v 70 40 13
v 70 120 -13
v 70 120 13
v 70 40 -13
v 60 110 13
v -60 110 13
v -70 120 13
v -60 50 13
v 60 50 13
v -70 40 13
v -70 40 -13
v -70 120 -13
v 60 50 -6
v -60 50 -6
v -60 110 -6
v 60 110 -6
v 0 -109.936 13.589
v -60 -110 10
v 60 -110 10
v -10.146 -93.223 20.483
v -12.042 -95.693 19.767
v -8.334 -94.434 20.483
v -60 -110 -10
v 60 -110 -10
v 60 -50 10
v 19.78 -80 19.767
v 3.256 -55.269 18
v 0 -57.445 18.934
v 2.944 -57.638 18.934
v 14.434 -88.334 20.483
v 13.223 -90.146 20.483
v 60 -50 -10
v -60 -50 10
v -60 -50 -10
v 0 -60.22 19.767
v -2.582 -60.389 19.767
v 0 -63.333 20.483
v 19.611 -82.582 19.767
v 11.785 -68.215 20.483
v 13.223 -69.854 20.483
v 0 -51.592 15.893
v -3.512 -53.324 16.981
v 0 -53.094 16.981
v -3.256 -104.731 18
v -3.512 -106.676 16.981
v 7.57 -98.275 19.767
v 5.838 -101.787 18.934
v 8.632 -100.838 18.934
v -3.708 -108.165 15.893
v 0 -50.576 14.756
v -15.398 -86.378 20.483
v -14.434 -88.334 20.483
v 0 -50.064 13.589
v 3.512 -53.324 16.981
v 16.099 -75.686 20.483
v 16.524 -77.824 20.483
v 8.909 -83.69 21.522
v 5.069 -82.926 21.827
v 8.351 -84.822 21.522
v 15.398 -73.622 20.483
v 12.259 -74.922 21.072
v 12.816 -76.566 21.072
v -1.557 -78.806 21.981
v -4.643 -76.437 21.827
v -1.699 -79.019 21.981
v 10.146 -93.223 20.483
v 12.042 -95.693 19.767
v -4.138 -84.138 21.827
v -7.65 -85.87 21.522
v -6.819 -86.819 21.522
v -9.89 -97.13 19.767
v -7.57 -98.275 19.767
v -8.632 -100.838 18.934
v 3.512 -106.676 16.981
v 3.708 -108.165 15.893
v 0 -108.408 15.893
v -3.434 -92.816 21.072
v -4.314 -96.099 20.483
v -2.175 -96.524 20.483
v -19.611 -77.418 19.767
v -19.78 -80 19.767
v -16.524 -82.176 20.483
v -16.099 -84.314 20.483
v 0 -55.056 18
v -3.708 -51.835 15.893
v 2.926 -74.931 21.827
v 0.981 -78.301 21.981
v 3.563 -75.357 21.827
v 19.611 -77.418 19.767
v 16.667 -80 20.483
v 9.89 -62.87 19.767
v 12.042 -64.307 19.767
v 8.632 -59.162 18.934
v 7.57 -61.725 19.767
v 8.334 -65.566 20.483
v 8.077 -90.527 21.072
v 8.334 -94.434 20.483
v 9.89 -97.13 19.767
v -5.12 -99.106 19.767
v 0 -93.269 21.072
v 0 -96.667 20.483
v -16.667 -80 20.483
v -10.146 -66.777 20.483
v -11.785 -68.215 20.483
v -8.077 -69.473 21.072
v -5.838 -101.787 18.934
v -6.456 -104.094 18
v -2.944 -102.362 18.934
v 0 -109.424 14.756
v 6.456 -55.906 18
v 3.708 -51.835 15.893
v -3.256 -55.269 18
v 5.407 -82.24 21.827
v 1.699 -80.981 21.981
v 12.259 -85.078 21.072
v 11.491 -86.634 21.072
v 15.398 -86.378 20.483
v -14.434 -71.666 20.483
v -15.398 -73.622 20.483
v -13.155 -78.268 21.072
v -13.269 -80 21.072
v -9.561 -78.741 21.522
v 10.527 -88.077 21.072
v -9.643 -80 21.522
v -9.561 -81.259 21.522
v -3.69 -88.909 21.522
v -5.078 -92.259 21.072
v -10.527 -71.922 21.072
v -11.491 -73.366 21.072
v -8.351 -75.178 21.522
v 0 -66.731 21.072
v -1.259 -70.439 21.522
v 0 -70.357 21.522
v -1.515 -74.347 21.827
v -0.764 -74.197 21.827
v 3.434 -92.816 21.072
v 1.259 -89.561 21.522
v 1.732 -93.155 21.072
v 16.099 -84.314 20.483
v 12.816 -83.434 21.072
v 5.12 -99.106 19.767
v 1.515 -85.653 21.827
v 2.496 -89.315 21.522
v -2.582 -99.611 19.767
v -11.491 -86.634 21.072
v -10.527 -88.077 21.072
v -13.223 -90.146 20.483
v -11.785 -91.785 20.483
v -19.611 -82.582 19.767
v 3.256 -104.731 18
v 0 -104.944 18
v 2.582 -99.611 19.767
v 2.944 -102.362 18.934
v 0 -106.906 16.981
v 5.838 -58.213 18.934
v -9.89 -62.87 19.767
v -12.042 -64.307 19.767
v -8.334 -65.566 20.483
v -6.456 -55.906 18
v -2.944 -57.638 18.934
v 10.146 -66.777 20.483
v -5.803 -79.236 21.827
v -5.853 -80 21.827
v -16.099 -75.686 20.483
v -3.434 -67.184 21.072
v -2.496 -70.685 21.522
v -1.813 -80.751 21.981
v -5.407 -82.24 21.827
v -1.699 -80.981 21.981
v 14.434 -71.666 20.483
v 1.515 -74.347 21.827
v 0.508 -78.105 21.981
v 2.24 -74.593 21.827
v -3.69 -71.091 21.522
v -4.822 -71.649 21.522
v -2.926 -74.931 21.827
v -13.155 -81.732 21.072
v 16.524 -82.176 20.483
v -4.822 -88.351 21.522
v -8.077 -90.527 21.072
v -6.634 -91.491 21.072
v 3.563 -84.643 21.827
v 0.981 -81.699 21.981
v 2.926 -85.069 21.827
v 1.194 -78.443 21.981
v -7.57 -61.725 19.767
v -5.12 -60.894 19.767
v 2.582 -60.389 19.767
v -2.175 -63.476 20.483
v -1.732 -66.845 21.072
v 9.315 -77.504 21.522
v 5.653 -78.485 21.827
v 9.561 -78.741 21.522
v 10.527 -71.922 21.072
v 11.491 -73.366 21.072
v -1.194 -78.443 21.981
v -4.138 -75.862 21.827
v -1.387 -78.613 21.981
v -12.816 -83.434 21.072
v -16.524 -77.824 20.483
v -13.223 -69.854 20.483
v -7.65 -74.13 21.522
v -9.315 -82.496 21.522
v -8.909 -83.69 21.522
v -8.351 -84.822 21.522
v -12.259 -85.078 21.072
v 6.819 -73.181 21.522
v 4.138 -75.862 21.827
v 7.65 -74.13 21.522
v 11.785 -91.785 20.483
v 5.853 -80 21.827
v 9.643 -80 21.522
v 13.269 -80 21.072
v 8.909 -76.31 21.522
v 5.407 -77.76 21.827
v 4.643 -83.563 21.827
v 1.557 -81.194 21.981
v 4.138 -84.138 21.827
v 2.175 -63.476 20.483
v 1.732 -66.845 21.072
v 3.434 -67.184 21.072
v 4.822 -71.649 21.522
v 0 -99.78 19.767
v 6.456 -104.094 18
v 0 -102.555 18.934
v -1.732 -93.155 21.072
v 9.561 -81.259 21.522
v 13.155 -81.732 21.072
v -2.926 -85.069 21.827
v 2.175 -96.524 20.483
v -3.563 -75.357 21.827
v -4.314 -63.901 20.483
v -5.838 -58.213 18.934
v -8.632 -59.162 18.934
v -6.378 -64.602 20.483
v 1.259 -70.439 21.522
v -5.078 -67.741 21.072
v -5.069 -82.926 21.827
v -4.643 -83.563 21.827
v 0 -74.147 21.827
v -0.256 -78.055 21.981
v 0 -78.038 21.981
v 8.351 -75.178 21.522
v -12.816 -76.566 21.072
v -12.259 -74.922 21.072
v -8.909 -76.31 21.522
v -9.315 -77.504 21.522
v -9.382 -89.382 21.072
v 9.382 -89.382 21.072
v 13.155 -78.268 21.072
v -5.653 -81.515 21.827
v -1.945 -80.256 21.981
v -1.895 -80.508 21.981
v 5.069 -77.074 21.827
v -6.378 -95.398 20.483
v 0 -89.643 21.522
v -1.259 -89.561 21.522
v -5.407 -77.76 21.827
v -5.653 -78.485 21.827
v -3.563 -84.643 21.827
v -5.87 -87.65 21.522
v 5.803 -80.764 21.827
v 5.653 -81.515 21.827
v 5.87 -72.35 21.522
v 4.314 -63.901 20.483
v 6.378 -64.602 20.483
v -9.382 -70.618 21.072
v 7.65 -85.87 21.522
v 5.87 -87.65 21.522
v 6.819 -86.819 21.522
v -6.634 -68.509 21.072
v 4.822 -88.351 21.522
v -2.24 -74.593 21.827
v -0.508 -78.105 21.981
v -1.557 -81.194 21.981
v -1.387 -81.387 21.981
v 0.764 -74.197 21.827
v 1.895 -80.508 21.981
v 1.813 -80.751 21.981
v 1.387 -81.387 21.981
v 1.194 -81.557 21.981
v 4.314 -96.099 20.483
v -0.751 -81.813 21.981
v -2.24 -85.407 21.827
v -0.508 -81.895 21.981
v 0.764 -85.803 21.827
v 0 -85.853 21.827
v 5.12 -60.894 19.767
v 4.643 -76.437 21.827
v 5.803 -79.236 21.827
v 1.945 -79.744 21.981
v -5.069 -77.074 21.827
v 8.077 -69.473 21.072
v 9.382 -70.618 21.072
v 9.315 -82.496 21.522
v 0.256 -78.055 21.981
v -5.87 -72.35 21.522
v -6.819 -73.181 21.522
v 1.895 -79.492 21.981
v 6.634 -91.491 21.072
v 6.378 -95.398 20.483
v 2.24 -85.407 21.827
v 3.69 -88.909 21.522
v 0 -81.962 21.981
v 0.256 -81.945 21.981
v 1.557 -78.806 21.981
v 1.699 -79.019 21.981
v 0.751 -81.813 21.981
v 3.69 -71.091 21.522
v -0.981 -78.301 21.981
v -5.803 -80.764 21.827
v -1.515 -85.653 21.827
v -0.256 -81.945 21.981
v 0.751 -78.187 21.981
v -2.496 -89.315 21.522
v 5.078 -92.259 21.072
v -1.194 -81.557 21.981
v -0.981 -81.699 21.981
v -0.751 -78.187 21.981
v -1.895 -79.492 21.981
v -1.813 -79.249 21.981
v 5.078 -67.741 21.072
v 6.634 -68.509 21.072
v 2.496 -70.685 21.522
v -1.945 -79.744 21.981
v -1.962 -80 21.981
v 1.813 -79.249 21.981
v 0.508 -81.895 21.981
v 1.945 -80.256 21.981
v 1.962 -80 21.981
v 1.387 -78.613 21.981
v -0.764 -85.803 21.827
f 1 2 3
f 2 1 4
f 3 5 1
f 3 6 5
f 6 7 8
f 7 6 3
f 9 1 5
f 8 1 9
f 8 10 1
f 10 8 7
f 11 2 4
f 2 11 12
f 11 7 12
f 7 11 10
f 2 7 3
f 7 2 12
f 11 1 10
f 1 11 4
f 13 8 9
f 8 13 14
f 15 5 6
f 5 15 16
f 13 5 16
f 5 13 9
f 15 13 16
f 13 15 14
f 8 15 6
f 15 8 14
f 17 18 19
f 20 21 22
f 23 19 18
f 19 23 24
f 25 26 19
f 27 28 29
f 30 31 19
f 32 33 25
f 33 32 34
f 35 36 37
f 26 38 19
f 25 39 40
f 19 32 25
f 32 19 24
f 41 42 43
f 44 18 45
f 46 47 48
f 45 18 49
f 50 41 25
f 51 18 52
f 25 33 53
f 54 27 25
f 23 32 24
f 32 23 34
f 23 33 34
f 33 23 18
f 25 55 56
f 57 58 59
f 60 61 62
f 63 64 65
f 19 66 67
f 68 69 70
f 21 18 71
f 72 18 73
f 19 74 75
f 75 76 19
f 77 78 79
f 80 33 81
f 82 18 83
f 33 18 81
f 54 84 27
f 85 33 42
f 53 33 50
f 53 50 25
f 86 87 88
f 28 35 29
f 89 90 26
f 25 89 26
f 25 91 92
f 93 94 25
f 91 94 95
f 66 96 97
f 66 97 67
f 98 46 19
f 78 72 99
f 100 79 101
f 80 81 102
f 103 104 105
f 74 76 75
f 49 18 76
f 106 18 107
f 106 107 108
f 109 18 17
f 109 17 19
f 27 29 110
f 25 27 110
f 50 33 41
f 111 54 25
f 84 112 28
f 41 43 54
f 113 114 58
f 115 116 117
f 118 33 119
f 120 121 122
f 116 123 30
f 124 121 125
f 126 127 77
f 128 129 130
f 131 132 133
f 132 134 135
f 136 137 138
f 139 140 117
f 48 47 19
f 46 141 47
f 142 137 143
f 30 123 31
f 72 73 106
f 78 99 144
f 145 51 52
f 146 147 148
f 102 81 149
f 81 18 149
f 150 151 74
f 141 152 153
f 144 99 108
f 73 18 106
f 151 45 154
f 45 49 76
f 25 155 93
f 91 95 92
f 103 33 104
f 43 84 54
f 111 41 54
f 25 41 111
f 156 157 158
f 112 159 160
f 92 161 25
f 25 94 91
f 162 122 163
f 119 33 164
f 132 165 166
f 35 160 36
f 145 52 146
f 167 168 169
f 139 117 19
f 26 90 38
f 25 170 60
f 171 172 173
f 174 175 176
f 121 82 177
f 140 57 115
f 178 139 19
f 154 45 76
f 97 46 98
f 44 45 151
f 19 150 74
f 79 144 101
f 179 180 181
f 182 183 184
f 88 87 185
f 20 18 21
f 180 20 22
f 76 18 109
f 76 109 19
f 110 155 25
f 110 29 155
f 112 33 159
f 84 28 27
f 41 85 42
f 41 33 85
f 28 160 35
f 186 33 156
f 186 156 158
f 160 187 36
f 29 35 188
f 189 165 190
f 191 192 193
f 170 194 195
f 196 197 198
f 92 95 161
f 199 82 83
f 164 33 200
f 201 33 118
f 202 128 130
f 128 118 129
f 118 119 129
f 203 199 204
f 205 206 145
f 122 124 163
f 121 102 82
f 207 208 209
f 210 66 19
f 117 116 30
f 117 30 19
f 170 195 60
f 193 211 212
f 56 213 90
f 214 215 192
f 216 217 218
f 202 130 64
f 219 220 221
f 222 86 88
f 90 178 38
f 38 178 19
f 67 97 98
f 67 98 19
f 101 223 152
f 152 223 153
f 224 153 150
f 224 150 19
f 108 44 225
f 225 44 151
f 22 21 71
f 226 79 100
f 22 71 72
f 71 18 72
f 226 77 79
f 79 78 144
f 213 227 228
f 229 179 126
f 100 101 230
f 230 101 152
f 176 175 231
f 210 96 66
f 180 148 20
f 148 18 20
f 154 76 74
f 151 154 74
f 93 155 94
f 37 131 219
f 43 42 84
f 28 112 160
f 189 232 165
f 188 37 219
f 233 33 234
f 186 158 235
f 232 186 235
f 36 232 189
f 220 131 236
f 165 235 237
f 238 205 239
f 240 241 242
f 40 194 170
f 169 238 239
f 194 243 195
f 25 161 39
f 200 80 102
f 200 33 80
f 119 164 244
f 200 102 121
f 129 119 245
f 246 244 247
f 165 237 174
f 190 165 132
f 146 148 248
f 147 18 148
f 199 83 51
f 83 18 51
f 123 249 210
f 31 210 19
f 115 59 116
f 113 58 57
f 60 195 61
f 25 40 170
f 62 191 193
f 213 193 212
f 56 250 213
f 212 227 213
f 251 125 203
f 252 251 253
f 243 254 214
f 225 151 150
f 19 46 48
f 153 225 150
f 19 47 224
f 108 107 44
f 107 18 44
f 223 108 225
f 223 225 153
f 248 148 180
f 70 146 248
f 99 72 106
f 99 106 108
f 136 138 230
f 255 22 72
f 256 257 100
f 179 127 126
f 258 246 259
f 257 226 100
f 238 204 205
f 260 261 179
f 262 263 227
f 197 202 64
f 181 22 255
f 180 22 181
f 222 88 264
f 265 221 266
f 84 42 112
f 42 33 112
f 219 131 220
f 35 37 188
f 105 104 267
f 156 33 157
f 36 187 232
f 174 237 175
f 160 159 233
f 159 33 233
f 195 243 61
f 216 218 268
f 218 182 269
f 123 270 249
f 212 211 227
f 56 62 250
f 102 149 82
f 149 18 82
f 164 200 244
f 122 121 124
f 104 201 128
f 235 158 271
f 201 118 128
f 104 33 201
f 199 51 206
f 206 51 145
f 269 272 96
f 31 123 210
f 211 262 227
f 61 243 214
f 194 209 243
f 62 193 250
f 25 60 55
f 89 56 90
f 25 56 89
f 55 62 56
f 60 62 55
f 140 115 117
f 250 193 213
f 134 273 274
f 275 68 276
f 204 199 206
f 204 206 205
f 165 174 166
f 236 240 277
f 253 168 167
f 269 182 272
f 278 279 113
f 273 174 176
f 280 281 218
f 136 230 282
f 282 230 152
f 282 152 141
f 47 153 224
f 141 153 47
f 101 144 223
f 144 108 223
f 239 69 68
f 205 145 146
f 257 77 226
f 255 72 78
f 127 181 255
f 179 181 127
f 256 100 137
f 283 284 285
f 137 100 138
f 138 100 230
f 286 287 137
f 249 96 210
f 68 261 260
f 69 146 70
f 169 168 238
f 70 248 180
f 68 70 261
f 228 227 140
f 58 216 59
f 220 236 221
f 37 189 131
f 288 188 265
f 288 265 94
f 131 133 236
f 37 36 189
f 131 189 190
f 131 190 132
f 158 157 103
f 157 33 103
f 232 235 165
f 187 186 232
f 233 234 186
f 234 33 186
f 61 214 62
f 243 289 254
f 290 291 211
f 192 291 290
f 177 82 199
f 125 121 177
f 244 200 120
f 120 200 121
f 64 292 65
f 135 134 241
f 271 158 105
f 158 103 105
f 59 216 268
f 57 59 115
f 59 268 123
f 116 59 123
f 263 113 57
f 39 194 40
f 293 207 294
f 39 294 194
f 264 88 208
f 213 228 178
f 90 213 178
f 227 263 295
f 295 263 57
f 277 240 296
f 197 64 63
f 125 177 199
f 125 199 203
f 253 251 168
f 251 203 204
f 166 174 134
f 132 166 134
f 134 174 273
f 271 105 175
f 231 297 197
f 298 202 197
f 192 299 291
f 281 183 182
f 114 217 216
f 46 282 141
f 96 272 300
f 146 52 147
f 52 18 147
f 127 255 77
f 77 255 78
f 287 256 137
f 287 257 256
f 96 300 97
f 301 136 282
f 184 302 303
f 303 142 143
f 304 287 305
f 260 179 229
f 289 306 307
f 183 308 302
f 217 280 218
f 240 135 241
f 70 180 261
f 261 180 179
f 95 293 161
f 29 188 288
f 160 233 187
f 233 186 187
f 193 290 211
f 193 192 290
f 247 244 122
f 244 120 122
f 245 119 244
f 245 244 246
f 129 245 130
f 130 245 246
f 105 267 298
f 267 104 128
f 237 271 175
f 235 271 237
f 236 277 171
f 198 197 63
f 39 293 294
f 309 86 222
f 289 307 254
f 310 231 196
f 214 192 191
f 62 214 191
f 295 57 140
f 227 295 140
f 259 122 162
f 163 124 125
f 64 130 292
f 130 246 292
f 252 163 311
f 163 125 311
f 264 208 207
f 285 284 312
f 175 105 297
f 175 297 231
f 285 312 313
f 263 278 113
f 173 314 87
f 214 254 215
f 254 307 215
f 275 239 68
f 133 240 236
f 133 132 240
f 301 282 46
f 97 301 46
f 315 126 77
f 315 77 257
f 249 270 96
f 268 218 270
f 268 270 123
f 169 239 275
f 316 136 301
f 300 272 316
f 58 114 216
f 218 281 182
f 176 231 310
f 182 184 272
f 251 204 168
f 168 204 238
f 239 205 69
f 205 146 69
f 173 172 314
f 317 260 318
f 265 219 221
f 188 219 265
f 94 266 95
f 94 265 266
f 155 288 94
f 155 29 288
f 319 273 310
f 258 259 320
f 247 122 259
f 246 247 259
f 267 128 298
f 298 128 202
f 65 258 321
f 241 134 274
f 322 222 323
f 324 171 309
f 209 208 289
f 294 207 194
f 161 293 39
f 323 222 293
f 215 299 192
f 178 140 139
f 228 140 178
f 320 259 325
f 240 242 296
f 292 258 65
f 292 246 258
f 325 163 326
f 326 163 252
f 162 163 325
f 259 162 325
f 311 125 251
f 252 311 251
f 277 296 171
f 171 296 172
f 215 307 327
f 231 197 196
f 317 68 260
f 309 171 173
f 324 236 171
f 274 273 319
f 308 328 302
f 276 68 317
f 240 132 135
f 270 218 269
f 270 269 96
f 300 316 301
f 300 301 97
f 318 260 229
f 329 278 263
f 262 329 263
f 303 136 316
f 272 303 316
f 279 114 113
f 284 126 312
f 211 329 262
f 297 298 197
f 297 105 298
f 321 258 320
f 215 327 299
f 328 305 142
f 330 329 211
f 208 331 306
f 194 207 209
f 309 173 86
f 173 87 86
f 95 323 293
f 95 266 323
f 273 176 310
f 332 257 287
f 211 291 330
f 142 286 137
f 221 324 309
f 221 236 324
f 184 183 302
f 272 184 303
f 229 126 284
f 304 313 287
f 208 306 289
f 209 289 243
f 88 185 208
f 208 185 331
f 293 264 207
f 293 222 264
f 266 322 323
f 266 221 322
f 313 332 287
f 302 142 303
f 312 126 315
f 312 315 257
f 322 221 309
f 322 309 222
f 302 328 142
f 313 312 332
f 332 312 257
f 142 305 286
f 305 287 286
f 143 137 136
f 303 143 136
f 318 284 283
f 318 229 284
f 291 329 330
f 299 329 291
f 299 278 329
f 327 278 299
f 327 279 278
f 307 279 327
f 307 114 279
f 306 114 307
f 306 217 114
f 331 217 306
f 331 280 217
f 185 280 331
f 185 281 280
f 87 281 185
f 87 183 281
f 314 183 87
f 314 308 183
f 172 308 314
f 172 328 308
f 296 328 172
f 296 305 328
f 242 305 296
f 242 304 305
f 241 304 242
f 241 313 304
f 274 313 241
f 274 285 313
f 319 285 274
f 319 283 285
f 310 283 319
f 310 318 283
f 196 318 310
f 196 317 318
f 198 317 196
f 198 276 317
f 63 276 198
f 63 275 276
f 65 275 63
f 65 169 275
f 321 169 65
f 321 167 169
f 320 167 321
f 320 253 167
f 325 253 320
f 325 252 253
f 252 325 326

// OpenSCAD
// ISM-FJ-TOOL-060 — Sheet Al skin form die pair (study mm). Issue #106.
// Each die is its own manifold solid (export separately if needed).

panel_l = 120;
panel_w = 60;
crown = 6;
die_t = 20;

module male_die() {
    hull() {
        cube([panel_l, panel_w, die_t], center = true);
        translate([0, 0, die_t / 2 + crown / 2])
            scale([1, 1, 0.3]) sphere(d = panel_w, $fn = 48);
    }
}

module female_die() {
    difference() {
        cube([panel_l + 20, panel_w + 20, die_t + crown], center = true);
        translate([0, 0, 4]) male_die();
    }
}

// Preview both; each module is manifold on its own.
translate([0, -panel_w - 20, 0]) male_die();
translate([0, panel_w + 20, 0]) female_die();
